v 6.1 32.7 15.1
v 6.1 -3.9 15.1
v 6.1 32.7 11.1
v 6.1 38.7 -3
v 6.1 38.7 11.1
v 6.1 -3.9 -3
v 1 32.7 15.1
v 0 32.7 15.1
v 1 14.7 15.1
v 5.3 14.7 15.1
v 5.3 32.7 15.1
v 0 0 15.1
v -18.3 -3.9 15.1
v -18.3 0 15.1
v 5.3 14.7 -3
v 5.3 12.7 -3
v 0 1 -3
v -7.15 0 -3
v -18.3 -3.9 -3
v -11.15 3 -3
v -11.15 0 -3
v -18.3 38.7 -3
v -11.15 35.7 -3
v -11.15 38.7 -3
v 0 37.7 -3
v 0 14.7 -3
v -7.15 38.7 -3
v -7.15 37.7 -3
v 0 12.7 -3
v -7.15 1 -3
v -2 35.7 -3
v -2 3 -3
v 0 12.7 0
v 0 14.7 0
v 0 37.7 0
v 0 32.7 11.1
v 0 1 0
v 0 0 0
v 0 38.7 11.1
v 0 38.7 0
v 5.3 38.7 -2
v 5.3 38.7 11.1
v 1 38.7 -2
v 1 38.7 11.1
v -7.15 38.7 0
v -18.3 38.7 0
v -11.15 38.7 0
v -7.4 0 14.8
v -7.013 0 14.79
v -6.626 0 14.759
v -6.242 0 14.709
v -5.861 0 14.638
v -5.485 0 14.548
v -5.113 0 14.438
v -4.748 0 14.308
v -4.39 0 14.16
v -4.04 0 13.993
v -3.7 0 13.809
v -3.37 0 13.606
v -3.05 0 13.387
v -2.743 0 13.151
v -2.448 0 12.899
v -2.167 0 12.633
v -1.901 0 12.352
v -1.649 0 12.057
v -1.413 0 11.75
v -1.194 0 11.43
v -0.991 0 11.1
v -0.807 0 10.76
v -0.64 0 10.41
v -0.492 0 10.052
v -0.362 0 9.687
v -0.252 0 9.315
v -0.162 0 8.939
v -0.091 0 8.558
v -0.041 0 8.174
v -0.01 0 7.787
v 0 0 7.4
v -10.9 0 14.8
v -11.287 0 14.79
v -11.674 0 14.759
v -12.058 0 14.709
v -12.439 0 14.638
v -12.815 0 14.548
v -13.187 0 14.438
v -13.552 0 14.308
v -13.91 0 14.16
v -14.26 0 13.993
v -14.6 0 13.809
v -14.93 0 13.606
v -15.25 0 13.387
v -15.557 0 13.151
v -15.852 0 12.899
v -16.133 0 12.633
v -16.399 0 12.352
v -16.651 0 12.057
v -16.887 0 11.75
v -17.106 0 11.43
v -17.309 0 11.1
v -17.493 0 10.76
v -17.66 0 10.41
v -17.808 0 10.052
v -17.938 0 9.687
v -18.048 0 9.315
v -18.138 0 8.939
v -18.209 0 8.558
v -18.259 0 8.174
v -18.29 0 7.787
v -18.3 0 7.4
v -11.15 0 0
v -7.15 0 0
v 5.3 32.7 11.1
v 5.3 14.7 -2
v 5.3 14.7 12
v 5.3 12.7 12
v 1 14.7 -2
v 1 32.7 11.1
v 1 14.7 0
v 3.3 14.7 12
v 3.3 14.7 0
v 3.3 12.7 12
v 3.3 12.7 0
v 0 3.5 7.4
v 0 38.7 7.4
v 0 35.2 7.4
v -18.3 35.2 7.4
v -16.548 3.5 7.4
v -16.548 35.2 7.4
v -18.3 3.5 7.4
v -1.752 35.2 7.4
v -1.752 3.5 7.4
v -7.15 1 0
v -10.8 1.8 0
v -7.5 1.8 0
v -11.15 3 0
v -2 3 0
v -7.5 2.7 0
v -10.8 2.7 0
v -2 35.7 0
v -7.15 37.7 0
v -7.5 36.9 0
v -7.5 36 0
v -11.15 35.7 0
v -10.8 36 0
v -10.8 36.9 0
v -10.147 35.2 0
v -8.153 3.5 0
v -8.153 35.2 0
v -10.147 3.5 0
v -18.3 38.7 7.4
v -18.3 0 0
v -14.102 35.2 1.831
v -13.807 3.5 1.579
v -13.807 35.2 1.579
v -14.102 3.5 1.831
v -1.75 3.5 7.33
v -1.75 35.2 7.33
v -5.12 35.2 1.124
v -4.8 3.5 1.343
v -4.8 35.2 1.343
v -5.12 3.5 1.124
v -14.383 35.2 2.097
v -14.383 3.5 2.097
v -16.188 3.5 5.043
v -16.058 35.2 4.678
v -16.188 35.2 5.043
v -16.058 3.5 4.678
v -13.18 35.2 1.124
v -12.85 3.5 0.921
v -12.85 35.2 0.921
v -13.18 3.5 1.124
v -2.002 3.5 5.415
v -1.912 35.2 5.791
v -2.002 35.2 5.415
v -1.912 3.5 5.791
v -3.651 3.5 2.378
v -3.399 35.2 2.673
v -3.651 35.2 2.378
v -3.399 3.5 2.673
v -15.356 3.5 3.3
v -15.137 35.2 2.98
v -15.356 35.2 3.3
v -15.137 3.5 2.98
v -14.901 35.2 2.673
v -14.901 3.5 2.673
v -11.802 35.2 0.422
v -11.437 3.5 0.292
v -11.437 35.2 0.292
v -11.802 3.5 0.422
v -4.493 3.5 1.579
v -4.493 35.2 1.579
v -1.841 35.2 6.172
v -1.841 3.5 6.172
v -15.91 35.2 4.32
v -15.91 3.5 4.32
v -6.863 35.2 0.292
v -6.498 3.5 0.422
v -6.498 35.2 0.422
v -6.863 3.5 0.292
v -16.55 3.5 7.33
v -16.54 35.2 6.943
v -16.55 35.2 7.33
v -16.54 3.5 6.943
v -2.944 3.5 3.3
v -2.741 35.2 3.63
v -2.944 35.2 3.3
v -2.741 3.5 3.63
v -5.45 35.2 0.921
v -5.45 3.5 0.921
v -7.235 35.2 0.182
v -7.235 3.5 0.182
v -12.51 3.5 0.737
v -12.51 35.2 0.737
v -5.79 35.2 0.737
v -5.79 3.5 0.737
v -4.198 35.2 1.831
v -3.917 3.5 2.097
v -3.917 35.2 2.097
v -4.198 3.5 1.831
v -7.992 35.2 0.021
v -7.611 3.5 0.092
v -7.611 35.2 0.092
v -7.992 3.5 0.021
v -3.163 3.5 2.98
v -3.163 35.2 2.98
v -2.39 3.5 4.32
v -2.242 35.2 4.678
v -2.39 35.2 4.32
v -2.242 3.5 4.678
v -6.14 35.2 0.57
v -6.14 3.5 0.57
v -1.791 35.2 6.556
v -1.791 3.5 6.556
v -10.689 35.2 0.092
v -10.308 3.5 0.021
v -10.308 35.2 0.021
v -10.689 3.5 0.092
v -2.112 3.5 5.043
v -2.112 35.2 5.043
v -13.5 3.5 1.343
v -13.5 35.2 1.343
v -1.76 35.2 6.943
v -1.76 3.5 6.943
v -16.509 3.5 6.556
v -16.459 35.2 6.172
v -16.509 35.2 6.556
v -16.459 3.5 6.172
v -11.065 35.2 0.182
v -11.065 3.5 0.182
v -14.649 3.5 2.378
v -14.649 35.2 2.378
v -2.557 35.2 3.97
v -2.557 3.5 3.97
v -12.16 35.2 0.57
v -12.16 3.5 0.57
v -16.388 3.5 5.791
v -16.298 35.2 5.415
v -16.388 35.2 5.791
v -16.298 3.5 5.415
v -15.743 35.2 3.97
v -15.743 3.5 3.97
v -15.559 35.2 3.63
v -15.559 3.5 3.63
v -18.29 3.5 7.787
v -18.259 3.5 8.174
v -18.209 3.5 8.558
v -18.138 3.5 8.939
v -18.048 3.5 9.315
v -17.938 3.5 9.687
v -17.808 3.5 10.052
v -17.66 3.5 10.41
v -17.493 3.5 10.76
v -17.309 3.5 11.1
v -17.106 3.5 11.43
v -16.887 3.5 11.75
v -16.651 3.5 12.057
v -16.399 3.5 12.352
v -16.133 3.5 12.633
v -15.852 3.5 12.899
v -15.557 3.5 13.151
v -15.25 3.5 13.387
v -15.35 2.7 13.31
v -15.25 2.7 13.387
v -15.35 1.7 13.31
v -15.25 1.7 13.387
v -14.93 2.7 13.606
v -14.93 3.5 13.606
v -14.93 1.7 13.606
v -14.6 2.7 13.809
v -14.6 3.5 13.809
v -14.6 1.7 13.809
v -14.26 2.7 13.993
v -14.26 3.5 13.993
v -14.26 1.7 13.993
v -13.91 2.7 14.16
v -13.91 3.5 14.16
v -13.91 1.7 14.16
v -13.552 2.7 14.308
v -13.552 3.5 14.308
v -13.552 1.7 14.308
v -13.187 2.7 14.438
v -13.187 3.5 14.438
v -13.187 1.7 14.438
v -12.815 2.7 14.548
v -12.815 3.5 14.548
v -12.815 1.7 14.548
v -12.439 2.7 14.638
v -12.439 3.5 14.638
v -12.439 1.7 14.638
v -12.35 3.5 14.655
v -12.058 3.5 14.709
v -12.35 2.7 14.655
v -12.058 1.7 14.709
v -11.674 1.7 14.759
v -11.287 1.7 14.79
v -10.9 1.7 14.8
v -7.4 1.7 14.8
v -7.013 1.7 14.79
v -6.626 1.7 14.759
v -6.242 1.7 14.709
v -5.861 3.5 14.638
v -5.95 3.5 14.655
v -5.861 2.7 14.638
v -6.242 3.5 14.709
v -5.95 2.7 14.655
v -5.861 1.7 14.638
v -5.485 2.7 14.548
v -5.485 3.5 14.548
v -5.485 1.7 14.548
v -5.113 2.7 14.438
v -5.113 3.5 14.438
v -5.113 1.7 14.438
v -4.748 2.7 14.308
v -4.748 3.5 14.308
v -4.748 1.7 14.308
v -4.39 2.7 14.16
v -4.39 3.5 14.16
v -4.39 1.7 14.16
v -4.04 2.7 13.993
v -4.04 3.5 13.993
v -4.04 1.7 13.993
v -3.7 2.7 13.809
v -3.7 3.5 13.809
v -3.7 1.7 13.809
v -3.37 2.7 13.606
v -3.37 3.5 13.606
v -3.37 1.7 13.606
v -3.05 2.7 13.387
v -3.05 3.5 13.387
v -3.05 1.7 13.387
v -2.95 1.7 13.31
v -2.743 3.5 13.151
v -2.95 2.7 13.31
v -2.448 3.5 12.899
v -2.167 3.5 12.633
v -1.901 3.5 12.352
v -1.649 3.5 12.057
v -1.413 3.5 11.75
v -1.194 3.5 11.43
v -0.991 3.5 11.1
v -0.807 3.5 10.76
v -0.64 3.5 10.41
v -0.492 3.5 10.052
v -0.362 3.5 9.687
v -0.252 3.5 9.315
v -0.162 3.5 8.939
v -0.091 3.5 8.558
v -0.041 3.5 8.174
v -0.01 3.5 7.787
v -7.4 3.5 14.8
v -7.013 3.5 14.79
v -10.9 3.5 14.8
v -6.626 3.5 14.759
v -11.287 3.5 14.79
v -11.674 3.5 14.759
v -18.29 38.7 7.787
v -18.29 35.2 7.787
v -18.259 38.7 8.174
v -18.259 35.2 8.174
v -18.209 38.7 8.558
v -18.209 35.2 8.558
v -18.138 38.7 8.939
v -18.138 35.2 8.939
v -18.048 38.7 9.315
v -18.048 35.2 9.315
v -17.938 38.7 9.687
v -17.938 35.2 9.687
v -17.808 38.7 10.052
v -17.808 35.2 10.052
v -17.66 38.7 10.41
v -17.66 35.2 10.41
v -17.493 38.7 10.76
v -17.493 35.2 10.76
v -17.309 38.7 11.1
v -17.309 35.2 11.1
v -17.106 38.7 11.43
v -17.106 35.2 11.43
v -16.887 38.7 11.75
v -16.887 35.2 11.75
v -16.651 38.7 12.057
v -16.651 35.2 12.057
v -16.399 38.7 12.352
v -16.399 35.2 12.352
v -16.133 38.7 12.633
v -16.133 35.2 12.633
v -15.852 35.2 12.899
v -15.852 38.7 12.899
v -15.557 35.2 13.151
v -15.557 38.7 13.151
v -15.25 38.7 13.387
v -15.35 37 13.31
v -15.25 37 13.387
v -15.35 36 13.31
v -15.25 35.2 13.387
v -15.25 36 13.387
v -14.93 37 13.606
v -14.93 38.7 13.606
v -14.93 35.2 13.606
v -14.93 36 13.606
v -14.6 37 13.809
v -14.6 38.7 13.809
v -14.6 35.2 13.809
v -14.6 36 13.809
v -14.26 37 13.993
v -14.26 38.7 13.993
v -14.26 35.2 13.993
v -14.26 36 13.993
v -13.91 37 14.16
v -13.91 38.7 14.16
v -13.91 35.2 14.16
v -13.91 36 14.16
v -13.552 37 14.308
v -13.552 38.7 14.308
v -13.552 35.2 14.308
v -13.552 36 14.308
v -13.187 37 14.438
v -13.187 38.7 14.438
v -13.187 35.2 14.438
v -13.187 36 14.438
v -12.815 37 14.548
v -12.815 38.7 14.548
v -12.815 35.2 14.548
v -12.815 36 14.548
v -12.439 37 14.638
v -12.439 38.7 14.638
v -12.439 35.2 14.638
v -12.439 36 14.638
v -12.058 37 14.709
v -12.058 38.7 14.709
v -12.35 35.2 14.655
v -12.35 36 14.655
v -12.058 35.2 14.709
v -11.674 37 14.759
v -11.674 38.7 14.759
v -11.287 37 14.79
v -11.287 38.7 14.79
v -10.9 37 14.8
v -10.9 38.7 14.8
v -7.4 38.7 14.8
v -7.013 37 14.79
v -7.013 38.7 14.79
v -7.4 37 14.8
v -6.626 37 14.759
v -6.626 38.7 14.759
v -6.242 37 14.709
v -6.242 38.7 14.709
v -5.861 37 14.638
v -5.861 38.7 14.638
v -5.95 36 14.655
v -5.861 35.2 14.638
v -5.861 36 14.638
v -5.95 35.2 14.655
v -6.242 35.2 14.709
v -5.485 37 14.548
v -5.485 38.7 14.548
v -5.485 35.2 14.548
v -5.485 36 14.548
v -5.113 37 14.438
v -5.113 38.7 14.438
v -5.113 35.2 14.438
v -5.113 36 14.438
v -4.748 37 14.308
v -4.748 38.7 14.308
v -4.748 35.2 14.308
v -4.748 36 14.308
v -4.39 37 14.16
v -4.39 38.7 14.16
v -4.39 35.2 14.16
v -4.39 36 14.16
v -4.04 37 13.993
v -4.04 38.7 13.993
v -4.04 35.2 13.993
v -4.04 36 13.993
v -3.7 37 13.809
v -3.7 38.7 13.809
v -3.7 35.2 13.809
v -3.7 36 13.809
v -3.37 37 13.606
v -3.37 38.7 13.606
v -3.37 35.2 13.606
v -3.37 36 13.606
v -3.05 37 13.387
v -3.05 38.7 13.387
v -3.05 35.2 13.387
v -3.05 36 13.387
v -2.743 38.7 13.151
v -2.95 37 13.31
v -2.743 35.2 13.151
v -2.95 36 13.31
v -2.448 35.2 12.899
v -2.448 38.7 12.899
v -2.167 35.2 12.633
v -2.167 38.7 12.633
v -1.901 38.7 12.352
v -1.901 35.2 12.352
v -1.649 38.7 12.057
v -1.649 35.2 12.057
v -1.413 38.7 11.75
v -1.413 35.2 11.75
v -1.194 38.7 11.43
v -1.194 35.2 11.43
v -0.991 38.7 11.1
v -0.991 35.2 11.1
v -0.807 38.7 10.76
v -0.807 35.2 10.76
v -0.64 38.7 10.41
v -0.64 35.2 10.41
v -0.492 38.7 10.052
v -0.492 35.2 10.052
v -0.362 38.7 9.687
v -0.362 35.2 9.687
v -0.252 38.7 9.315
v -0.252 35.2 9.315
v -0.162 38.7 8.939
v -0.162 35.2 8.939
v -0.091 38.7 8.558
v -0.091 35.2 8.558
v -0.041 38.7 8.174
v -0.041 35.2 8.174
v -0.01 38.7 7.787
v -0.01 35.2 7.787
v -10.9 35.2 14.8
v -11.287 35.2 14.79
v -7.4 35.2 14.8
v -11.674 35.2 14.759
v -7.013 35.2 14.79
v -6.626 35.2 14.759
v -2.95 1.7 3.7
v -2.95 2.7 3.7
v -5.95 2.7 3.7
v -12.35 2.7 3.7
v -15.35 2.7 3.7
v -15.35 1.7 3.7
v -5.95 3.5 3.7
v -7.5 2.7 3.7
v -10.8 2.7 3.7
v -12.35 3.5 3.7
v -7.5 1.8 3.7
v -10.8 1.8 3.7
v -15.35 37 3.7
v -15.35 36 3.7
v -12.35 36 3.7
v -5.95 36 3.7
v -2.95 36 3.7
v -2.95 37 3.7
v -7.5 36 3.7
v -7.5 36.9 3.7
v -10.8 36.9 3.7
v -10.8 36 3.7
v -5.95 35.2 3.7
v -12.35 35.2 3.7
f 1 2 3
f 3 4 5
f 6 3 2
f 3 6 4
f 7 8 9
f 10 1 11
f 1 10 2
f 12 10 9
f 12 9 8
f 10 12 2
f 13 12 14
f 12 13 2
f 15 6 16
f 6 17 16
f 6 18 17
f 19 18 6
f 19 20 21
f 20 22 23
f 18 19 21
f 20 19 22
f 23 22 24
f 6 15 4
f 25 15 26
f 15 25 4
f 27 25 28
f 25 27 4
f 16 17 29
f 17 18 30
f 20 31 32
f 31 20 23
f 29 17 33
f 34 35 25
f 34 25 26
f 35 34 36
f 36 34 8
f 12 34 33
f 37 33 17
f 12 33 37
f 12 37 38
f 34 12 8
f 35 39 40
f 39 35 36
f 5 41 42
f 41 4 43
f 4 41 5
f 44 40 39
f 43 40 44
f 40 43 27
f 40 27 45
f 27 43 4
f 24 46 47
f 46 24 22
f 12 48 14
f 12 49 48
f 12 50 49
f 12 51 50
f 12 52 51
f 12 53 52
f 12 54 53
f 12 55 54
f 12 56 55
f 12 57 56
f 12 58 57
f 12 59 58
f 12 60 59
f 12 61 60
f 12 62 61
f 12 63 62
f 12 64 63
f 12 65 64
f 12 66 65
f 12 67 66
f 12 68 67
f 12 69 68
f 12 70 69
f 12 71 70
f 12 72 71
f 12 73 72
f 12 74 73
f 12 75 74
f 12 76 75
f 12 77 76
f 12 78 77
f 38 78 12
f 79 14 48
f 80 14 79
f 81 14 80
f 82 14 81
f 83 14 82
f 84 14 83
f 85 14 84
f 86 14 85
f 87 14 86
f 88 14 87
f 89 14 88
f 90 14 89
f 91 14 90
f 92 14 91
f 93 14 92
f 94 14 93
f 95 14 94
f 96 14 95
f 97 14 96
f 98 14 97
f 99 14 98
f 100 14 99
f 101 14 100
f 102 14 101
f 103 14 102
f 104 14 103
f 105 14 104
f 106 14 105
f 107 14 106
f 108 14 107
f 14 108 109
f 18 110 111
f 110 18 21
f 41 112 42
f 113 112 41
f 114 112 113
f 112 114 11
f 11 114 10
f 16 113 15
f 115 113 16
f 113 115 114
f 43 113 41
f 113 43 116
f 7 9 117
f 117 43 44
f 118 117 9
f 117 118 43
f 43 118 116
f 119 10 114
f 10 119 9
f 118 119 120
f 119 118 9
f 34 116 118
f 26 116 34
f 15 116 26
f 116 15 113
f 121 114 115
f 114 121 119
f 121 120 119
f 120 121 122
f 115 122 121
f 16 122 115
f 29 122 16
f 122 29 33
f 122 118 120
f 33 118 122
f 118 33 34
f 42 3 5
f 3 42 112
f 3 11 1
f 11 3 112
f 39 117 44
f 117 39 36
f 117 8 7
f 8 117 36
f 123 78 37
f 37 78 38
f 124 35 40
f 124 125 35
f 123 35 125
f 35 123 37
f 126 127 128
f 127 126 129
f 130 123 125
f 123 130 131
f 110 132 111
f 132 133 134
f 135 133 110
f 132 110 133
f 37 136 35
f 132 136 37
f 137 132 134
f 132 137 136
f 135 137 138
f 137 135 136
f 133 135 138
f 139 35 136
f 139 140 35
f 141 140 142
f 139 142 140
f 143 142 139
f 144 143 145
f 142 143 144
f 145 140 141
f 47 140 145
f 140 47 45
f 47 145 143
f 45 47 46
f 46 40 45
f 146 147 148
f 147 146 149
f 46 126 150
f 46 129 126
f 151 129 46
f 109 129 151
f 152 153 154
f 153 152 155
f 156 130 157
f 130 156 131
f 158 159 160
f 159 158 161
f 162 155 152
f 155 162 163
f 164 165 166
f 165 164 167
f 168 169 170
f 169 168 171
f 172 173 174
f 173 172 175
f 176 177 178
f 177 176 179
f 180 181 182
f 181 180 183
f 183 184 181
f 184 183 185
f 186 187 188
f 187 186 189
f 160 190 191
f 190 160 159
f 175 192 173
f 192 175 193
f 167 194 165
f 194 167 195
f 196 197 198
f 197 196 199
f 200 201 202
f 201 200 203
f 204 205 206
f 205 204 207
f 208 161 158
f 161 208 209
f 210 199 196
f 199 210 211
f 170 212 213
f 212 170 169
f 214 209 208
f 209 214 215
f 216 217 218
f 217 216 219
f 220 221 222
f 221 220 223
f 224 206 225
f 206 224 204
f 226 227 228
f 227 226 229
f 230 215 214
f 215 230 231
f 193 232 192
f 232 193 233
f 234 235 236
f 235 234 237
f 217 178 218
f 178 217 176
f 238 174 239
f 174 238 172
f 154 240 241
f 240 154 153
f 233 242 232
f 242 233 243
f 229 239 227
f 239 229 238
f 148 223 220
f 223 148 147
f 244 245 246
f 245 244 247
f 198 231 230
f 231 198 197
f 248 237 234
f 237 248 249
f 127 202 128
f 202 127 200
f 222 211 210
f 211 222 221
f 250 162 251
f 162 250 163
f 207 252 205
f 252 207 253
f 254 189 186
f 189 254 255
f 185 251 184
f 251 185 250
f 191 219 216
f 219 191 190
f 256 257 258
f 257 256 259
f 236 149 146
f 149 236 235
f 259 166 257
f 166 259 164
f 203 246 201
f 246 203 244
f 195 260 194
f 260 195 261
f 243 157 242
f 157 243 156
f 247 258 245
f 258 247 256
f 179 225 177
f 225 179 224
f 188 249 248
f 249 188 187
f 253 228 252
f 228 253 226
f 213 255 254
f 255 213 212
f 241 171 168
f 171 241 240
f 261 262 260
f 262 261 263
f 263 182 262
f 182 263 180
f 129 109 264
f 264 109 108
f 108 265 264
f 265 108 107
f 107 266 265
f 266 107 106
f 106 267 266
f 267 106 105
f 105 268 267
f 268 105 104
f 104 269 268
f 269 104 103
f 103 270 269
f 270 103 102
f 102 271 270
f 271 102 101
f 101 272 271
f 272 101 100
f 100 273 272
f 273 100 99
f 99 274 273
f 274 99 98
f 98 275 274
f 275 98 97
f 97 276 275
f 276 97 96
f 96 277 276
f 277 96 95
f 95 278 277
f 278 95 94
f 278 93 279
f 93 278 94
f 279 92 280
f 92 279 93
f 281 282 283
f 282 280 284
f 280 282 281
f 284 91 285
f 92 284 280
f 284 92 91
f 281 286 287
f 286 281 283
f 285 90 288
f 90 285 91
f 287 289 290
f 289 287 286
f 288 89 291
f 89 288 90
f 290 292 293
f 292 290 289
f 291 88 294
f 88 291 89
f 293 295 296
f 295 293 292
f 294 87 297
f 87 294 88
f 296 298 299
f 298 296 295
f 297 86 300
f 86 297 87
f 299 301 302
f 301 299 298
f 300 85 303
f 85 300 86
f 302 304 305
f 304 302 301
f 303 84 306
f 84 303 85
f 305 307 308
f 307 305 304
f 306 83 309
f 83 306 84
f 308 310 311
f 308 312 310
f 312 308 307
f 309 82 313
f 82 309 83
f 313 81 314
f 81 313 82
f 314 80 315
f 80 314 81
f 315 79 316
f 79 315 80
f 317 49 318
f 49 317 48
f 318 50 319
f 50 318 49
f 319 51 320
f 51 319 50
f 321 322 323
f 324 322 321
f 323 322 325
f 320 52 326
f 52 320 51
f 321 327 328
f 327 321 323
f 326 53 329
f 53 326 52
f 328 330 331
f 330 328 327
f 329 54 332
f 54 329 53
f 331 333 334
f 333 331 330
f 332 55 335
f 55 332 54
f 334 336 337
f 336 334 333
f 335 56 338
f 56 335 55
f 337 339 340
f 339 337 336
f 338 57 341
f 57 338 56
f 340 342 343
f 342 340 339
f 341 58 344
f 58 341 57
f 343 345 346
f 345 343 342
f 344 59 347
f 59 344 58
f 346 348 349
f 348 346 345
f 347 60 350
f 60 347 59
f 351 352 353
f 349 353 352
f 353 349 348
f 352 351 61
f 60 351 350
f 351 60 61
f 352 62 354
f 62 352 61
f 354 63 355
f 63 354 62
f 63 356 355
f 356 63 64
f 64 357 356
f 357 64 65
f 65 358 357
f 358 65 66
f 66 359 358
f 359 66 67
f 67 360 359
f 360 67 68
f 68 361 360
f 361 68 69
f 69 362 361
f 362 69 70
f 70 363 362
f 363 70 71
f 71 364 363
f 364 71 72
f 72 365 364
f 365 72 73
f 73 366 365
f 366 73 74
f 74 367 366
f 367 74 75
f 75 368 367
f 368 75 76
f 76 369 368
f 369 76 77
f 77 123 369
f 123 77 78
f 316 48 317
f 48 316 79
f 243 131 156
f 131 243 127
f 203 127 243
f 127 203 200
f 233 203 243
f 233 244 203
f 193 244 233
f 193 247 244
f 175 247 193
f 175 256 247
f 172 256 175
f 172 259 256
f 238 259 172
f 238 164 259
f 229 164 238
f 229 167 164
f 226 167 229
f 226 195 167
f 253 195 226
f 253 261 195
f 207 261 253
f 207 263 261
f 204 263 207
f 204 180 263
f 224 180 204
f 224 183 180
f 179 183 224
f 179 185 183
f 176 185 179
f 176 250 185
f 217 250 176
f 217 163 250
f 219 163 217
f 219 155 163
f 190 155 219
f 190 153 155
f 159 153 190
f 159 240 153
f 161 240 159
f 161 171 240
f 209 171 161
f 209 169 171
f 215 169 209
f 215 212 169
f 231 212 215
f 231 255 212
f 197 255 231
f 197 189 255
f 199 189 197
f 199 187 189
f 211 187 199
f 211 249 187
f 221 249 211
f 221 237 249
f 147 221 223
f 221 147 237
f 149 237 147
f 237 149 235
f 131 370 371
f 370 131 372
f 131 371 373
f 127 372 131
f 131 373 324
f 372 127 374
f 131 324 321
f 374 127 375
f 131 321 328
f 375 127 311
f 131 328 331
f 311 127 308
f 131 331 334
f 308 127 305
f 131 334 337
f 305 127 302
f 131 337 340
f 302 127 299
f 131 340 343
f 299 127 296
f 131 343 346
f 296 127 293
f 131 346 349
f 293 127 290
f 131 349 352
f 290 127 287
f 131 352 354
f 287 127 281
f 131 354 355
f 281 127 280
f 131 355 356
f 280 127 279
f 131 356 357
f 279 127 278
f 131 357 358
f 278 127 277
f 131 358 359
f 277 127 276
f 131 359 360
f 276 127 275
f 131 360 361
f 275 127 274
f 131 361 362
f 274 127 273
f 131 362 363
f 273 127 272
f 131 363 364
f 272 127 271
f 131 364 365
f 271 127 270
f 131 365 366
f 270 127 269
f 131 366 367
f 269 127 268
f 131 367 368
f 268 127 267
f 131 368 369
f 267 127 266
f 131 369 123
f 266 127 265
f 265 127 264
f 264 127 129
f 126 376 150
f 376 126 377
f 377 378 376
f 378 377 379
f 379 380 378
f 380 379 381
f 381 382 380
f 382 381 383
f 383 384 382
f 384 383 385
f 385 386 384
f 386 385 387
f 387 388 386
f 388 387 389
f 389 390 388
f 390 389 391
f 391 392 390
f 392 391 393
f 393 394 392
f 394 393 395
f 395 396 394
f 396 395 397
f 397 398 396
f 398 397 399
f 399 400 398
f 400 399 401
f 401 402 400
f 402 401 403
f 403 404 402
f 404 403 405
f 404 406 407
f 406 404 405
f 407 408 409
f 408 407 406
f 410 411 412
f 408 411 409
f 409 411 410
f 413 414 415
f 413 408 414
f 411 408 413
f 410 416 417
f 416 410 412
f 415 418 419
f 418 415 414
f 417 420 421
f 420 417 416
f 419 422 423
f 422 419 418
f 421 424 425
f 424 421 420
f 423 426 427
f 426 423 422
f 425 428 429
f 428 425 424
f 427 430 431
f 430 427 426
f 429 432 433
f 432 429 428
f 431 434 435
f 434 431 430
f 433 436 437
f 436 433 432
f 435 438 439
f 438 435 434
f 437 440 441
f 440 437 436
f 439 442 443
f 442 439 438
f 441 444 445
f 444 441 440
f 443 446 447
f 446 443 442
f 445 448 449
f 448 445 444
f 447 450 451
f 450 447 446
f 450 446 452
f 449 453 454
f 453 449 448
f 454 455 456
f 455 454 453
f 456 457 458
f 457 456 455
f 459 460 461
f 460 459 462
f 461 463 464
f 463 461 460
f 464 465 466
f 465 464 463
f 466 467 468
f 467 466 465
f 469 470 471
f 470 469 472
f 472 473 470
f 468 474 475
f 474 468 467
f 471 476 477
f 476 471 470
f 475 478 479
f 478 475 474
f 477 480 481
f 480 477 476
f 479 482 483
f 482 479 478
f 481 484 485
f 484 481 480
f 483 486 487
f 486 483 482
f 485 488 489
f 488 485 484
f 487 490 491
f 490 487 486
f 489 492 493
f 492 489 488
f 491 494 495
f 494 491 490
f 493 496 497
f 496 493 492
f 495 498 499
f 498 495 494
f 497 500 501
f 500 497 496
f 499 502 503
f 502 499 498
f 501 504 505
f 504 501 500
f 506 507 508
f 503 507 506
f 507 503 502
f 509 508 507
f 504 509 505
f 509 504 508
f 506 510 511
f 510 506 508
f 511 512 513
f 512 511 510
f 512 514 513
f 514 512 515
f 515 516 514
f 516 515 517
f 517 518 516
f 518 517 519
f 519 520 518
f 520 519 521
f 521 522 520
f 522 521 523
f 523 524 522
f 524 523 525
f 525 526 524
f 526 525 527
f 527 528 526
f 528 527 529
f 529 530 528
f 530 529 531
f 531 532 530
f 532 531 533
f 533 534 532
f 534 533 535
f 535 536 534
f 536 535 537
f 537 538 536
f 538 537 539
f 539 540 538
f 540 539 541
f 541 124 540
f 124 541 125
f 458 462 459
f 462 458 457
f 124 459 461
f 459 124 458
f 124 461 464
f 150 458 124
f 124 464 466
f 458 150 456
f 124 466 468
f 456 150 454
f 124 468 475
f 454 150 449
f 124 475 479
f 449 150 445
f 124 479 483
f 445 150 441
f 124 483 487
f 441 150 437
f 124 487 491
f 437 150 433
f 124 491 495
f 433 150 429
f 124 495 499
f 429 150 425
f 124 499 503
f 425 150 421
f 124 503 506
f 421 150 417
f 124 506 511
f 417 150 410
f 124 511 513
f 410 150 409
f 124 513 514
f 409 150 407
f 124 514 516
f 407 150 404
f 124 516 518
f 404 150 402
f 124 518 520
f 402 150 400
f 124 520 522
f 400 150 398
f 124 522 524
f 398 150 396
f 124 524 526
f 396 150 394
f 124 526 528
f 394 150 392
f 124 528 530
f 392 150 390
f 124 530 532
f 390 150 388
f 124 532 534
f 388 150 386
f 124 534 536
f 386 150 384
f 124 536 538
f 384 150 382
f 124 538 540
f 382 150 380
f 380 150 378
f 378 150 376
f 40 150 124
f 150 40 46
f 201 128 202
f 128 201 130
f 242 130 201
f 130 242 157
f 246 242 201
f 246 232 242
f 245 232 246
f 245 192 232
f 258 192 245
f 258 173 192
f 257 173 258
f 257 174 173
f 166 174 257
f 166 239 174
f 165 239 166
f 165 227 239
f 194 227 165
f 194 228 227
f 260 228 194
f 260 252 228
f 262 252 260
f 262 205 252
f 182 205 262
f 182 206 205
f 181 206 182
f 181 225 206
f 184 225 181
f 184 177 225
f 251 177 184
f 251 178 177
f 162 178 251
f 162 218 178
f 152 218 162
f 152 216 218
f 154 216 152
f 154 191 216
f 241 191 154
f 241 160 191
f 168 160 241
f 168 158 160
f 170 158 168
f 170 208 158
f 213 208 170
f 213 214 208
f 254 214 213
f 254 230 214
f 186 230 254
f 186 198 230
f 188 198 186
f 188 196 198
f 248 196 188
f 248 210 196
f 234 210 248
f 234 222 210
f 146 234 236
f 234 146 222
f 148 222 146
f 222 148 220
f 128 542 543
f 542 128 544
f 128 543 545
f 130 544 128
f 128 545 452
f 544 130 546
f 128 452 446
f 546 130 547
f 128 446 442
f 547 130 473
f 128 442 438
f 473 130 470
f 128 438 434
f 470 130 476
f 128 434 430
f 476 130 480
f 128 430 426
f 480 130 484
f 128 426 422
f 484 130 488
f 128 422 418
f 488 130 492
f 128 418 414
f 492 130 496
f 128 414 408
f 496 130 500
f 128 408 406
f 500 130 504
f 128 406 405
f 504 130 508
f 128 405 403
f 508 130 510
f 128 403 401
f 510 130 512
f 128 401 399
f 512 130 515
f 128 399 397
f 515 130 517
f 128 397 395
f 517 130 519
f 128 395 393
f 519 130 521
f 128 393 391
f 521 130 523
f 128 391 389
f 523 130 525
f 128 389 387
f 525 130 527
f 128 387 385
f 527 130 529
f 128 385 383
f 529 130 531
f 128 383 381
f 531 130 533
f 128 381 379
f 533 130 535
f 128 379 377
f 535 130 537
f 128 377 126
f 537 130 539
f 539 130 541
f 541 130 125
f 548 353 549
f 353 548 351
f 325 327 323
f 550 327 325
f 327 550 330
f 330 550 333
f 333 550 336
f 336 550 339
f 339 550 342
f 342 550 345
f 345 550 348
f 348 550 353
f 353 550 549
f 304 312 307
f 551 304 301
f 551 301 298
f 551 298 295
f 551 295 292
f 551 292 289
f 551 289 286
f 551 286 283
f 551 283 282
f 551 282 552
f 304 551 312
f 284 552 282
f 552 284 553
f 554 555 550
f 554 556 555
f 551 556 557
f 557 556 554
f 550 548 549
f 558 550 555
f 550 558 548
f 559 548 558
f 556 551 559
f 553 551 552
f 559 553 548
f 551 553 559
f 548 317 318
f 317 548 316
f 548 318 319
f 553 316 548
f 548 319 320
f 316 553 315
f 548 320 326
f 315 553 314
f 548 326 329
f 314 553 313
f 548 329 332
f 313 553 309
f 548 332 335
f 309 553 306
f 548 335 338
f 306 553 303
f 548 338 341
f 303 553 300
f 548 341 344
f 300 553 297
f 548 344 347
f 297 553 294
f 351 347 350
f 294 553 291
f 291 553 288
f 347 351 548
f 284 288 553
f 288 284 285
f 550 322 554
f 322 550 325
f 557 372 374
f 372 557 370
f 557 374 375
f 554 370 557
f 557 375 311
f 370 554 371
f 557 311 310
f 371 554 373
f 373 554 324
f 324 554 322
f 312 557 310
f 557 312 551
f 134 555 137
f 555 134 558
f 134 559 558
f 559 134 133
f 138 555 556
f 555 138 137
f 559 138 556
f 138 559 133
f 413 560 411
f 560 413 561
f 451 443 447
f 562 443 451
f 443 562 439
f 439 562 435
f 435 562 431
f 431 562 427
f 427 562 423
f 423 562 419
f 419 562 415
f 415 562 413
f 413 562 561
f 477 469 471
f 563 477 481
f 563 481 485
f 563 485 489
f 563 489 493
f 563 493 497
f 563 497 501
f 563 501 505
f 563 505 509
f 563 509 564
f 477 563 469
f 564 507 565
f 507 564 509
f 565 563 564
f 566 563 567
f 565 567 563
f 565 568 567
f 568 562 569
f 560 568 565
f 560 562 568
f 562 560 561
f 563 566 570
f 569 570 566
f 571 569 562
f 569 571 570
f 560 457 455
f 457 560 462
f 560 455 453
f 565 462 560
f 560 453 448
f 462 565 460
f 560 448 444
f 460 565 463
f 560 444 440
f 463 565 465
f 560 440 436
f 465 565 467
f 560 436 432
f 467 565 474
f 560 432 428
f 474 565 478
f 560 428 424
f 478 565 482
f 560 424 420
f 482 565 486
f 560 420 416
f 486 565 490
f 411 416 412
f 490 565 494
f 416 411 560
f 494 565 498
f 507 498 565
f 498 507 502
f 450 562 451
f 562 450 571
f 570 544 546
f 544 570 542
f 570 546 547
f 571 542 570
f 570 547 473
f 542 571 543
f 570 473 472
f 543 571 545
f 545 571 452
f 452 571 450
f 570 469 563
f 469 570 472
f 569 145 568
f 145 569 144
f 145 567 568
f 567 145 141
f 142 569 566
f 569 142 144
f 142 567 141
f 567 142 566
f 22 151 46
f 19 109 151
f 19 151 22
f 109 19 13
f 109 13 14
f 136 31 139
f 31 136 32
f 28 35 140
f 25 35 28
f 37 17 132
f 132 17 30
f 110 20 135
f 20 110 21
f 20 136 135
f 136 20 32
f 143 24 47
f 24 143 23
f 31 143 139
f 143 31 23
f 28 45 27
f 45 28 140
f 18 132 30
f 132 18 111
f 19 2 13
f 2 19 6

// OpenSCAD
// battery holder for 2/3 AA Mignon NiMH Akku 1,2V 750mAh
// with NiMH charger module "1S 2S 3S 4S NiMH battery charging board type-c micro usb 5v input charger module charging current 500mA"

// battery holder derived from https://github.com/not-enough-time-for-all-these-projects/18650-holder
// credits to  'Not Enough Time For All These Projects'
// modified by FUEL4EP to fit to GP75AAH Akku 2/3AA Mignon NiMH Akku 1.2V 750mAh 
//  e.g from https://www.amazon.de/Sparset-GP75AAH-Mignon-750mAh-wiederaufladbar-gr%C3%BCn/dp/B08HM5DL27
// contacts e.g. https://www.amazon.de/sourcing-map-Federplatte-Vernickelt-12mmx12mm/dp/B0B1HJHPZJ/ref=asc_df_B0B1HJHPZJ/
//  fitting NiMH charging module: https://de.aliexpress.com/item/1005005777972846.html
include  <2_3_AA_NiMH-akku-holder.scad>

module NiMH_akku_supply(){

hConnector=3;
wChargingModule=17.1;
lChargingModule=24.0;
dChargingModule=4.3;
dWall=1;
hLEDChargingModule=6.9;
x_offset_LED_ChargingModule=1.5;
y_offset_LED_ChargingModule=2.4;
dLEDChargingModule=3.1;
hUSB_C=3.5;
wUSB_C=9;
x1_USB_C=3.5;
x2_USB_C=5.4;
wWiringChannel_1=2;
lWiringChannel_1=boxLength-2*dWall;
yoWiringChannel_1=dWall;
wWiringChannel_2=2;
lWiringChannel_2=(boxWidth)/2;
yoWiringChannel_2=(boxWidth-lWiringChannel_1)/2;
wWiringChannel_3=4;
lWiringChannel_3=3;
wWiringChannel_4=wWiringChannel_2;
lWiringChannel_4=11+hConnector+dWall;
wWiringChannel_5=dWall+dChargingModule-wWiringChannel_4;
lWiringChannel_5=wWiringChannel_2;
lLEDOpening=6;
hLEDOpening=4;
extra_gap=0.2;

xFill=24.6-extra_gap;
yFill=4.1-extra_gap;
hFill=wChargingModule+dWall;

difference(){
  translate([0,0,-hConnector]) rotate([0,0,0]) cube([dChargingModule+2*dWall-extra_gap,boxLength,wChargingModule+dWall]);

  translate([dWall,boxLength-lChargingModule,-hConnector+dWall]) rotate([0,0,0]) cube([dChargingModule,lChargingModule,wChargingModule]);
  translate([dWall+dChargingModule-wWiringChannel_4,boxLength-lChargingModule-wWiringChannel_4,-hConnector]) rotate([0,0,0]) cube([wWiringChannel_4,wWiringChannel_4,lWiringChannel_4]);
   #translate([0,boxLength-lChargingModule-wWiringChannel_4,-hConnector]) rotate([0,0,0]) cube([wWiringChannel_5,lWiringChannel_5,hConnector]);
   translate([dChargingModule+dWall,boxLength-lLEDOpening,-hConnector+wChargingModule-hLEDOpening+dWall]) rotate([0,0,0]) cube([dWall,lLEDOpening,hLEDOpening]);
   translate([0,boxLength-lLEDOpening,-hConnector+wChargingModule-hLEDOpening+dWall]) rotate([0,0,0]) cube([dWall,lLEDOpening,hLEDOpening]);
}

translate([-boxWidth,0,0]) rotate([0,0,0]) 2_3_A_NiMH_akku_holder();

difference(){
  translate([-boxWidth,0,-hConnector]) rotate([0,0,0]) cube([boxWidth,boxLength,hConnector]);
  translate([-wWiringChannel_1,yoWiringChannel_1,-hConnector]) rotate([0,0,0]) cube([wWiringChannel_1,lWiringChannel_1,hConnector]);
  translate([-wWiringChannel_1-lWiringChannel_2,yoWiringChannel_1,-hConnector]) rotate([0,0,0]) cube([lWiringChannel_2,wWiringChannel_2,hConnector]);
  translate([-wWiringChannel_1-lWiringChannel_2,boxLength-dWall-wWiringChannel_2,-hConnector]) rotate([0,0,0]) cube([lWiringChannel_2,wWiringChannel_2,hConnector]);
  translate([-wWiringChannel_1-lWiringChannel_2,boxLength-lWiringChannel_3,-hConnector]) rotate([0,0,0]) cube([wWiringChannel_3,lWiringChannel_3,hConnector]);
  translate([-wWiringChannel_1-lWiringChannel_2,0,-hConnector]) rotate([0,0,0]) cube([wWiringChannel_3,lWiringChannel_3,hConnector]);
}

translate([-xFill++2*dWall+dChargingModule-extra_gap,-yFill,-hConnector]) rotate([0,0,0]) cube([xFill,yFill,hFill]);

echo("width = ",boxWidth+2*dWall+dChargingModule);
echo("length = ",boxLength+yFill);
echo("height = ",wChargingModule+dWall);

}

NiMH_akku_supply();
